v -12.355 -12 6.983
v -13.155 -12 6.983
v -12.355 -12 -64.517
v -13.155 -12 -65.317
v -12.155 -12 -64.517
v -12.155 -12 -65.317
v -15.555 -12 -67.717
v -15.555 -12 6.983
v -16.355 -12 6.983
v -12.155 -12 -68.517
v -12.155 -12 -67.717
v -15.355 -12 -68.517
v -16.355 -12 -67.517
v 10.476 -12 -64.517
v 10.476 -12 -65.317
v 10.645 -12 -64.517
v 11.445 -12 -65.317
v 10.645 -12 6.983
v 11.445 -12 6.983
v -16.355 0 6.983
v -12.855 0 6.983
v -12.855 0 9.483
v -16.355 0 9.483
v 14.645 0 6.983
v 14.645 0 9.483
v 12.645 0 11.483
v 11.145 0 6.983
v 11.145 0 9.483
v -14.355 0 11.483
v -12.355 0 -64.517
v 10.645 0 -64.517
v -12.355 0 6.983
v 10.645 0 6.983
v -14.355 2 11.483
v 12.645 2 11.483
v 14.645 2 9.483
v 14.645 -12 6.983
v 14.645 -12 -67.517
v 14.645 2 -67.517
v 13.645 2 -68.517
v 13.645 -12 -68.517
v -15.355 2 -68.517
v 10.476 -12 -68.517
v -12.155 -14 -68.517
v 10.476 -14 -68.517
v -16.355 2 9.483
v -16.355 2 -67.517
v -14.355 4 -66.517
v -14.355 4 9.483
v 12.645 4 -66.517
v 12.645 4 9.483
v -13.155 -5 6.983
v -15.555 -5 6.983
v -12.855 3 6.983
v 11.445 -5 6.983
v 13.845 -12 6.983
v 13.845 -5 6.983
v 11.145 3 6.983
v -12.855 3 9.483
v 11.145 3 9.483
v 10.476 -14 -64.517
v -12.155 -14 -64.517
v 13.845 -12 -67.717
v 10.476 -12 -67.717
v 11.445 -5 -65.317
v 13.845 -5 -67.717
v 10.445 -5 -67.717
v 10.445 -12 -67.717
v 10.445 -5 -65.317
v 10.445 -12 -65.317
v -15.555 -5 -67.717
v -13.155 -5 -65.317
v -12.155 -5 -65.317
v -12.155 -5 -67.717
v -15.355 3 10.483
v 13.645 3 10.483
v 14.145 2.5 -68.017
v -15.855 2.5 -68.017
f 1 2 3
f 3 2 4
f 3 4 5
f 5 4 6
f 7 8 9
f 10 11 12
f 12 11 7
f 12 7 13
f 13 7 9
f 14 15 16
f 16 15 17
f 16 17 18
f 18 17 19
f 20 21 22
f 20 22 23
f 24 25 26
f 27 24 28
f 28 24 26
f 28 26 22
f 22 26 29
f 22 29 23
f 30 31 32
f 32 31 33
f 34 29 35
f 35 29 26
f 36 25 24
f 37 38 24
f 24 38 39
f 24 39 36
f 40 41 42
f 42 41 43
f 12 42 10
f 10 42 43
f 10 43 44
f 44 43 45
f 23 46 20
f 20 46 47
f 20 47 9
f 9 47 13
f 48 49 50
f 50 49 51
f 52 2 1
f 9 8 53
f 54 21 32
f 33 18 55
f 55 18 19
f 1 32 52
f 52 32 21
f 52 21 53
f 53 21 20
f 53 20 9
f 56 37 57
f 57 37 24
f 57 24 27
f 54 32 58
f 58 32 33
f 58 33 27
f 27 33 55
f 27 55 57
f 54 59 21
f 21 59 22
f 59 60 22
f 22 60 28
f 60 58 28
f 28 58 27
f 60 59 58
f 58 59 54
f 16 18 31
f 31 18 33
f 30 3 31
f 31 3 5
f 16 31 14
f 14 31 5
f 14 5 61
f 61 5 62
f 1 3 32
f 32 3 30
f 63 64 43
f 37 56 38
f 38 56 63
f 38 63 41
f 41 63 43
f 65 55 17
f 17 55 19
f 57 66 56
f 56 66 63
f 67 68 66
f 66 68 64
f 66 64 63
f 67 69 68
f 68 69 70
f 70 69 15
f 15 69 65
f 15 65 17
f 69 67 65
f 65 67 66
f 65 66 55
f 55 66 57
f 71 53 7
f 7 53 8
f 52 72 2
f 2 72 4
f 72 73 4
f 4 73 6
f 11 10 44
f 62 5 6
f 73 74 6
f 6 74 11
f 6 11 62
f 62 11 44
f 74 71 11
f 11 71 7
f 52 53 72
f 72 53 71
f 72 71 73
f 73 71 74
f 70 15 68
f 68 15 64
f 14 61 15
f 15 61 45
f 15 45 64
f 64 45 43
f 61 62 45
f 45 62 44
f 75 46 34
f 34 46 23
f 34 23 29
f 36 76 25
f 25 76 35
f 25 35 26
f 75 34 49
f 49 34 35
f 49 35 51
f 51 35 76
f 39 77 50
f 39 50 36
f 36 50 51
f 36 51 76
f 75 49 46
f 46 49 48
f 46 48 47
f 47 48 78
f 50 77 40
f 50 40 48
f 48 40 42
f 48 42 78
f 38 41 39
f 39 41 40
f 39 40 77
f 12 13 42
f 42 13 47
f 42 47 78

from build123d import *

# Parameters (mm, degrees)
SKETCH1_W           = 31
SKETCH1_H           = 80
BOSS_EXTRUDE1_DEPTH = 4
SKETCH2_W           = 24
SKETCH2_H           = 2.5
CUT_EXTRUDE1_DEPTH  = 3
BOSS_EXTRUDE2_DEPTH = 12
CUT_EXTRUDE3_DEPTH  = 7
SKETCH5_W           = 22.630422209
SKETCH5_H           = 4
BOSS_EXTRUDE3_DEPTH = 2
CHAMFER1_SIZE       = 2
CHAMFER2_SIZE       = 2
CHAMFER3_SIZE       = 2
CHAMFER4_SIZE       = 2
CHAMFER6_SIZE       = 1


with BuildPart() as part:
    # Sketch1 → Boss-Extrude1 (new body)
    with BuildSketch(Plane(origin=(0, 0, 0), x_dir=(1, 0, 0), z_dir=(0, 1, 0))):
        with Locations((-0.854779412, 28.517463235)):
            Rectangle(SKETCH1_W, SKETCH1_H)
    extrude(amount=BOSS_EXTRUDE1_DEPTH)

    # Sketch2 → Cut-Extrude1 (cut)
    with BuildSketch(Plane.XZ):
        with Locations((-0.854779412, 8.232536765)):
            Rectangle(SKETCH2_W, SKETCH2_H)
    extrude(amount=-CUT_EXTRUDE1_DEPTH, mode=Mode.SUBTRACT)

    # Sketch3 → Boss-Extrude2 (add)
    with BuildSketch(Plane.XZ):
        Polygon((-16.354779412, 6.982536765), (-12.354779412, 6.982536765), (-12.354779412, -64.517463235), (10.645220588, -64.517463235), (10.645220588, 6.982536765), (14.645220588, 6.982536765), (14.645220588, -68.517463235), (10.645220588, -68.517463235), (-12.354779412, -68.517463235), (-16.354779412, -68.517463235), align=None)
    extrude(amount=BOSS_EXTRUDE2_DEPTH)

    # Sketch4 → Cut-Extrude3 (cut)
    with BuildSketch(Plane.XZ.offset(12)):
        Polygon((-15.554779412, 6.982536765), (-13.154779412, 6.982536765), (-13.154779412, -65.317463235), (-12.154779412, -65.317463235), (-12.154779412, -67.717463235), (-13.154779412, -67.717463235), (-15.554779412, -67.717463235), align=None)
        Polygon((11.445220588, 6.982536765), (13.845220588, 6.982536765), (13.845220588, -67.717463235), (11.445220588, -67.717463235), (10.445220588, -67.717463235), (10.445220588, -65.317463235), (11.445220588, -65.317463235), align=None)
    extrude(amount=-CUT_EXTRUDE3_DEPTH, mode=Mode.SUBTRACT)

    # Sketch5 → Boss-Extrude3 (add)
    with BuildSketch(Plane.XZ.offset(12)):
        with Locations((-0.839568307, -66.517463235)):
            Rectangle(SKETCH5_W, SKETCH5_H)
    extrude(amount=BOSS_EXTRUDE3_DEPTH)

    # Chamfer1
    chamfer1_edges = [part.edges().sort_by_distance(p)[0] for p in [
        (-16.354779412, 2, 11.482536765),
        (14.645220588, 2, 11.482536765),
    ]]
    chamfer(chamfer1_edges, length=CHAMFER1_SIZE)

    # Chamfer2
    chamfer2_edges = [part.edges().sort_by_distance(p)[0] for p in [
        (-0.854779412, 4, 11.482536765),
    ]]
    chamfer(chamfer2_edges, length=CHAMFER2_SIZE)

    # Chamfer3
    chamfer3_edges = [part.edges().sort_by_distance(p)[0] for p in [
        (-16.354779412, 4, -29.517463235),
        (14.645220588, 4, -29.517463235),
    ]]
    chamfer(chamfer3_edges, length=CHAMFER3_SIZE)

    # Chamfer4
    chamfer4_edges = [part.edges().sort_by_distance(p)[0] for p in [
        (-0.854779412, 4, -68.517463235),
    ]]
    chamfer(chamfer4_edges, length=CHAMFER4_SIZE)

    # Chamfer6
    chamfer6_edges = [part.edges().sort_by_distance(p)[0] for p in [
        (14.645220588, -5, -68.517463235),
        (-16.354779412, -5, -68.517463235),
    ]]
    chamfer(chamfer6_edges, length=CHAMFER6_SIZE)


solid = part.part
